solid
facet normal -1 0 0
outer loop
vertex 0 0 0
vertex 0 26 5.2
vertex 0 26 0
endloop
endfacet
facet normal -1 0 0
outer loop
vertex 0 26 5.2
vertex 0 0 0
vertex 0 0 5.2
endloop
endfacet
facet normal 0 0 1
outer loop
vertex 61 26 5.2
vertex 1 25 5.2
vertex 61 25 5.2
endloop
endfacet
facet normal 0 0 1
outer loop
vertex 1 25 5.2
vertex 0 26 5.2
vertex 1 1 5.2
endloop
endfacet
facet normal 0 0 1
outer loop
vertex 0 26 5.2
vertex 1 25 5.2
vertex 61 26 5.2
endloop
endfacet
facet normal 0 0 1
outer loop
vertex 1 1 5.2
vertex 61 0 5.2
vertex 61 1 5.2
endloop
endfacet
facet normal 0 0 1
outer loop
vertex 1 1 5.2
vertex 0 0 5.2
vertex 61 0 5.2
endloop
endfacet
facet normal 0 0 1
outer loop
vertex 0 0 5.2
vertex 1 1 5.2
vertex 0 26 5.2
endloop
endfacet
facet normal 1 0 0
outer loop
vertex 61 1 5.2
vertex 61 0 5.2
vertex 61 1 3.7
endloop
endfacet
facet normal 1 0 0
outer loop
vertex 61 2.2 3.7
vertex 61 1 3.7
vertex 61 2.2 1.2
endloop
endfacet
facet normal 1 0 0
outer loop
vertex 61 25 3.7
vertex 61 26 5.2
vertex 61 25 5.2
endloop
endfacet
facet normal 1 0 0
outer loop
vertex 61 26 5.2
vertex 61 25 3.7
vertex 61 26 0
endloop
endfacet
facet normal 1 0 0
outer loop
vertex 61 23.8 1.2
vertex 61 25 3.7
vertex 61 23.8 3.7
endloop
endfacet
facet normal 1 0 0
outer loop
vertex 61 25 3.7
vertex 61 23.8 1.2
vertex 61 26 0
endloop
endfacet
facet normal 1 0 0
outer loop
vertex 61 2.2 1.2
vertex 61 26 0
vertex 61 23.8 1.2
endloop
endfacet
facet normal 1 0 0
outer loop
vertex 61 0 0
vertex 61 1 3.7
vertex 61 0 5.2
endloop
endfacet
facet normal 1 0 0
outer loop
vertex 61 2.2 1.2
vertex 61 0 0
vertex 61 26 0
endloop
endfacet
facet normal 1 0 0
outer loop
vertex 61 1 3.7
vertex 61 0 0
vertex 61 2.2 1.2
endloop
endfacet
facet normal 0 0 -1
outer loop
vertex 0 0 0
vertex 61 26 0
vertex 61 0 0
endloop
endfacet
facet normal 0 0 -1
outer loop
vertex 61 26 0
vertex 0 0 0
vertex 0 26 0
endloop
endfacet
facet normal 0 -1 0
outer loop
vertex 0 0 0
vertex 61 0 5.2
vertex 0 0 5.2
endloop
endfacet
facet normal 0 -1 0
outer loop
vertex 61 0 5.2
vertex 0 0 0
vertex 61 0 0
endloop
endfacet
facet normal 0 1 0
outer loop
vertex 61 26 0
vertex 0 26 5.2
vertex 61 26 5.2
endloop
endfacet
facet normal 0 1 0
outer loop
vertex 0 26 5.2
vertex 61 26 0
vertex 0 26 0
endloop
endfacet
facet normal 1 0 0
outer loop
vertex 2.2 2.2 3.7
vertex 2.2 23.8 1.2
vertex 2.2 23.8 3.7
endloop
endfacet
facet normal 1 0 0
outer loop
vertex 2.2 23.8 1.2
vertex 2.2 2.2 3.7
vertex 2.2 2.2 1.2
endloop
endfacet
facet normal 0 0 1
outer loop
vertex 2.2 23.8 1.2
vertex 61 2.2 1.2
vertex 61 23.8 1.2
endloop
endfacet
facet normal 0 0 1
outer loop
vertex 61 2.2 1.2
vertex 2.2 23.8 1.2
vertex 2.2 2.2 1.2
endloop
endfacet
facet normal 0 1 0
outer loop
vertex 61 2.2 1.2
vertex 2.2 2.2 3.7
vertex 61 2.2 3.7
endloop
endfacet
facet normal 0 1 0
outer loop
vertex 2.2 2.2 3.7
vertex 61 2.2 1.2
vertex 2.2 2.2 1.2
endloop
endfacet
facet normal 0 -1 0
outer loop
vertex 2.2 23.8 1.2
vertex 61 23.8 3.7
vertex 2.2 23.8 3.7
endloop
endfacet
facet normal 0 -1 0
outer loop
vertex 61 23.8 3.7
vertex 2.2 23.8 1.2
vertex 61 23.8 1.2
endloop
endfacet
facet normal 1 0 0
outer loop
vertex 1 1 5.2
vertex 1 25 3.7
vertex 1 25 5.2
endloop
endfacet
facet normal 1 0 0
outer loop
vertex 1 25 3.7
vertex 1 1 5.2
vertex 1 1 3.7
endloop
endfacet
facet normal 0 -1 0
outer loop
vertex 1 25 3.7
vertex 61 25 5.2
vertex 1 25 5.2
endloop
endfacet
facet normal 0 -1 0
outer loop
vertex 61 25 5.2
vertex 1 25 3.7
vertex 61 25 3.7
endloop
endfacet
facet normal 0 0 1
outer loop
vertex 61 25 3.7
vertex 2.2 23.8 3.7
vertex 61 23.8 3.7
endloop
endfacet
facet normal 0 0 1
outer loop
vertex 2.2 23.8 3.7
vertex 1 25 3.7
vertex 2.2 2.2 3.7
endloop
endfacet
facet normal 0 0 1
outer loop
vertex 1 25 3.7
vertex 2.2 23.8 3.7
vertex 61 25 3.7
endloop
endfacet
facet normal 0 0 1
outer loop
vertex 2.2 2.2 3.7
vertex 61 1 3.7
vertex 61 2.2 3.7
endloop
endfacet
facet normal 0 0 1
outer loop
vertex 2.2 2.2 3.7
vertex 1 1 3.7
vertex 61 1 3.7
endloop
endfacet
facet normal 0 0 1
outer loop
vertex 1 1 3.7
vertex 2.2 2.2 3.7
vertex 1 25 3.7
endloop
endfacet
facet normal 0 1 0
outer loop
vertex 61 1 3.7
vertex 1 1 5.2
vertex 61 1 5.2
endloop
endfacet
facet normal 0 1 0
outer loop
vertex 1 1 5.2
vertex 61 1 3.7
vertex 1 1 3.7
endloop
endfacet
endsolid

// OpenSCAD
/* Unterteil für den Programmieradapter 
   Copyright, 2023, Mathias Moog, Hochschule Ansbach, Deutschland, CC-BY-NC-SA
*/


l=60;       // Länge
b=24;       // Breite
wu=1.2;     // Stufe unterhalb Platine
wo=1;       // Wandstärke neben Platine
hb=1.2;     // Höhe Bodenplatte
hu=2.5;     // Höhe unter Platine (Pins, Kabel)
ho=1.5;     // Höhe neben Platine


difference() {
  cube([l+wo,b+2*wo,hb+hu+ho]);
  // Abzüglich
  translate([wo+wu,wu+wo,hb]) cube([l,b-2*wu,hb+hu+ho]);
  translate([wo,wo,hb+hu]) cube([l,b,hb+hu+ho]);
}
  
